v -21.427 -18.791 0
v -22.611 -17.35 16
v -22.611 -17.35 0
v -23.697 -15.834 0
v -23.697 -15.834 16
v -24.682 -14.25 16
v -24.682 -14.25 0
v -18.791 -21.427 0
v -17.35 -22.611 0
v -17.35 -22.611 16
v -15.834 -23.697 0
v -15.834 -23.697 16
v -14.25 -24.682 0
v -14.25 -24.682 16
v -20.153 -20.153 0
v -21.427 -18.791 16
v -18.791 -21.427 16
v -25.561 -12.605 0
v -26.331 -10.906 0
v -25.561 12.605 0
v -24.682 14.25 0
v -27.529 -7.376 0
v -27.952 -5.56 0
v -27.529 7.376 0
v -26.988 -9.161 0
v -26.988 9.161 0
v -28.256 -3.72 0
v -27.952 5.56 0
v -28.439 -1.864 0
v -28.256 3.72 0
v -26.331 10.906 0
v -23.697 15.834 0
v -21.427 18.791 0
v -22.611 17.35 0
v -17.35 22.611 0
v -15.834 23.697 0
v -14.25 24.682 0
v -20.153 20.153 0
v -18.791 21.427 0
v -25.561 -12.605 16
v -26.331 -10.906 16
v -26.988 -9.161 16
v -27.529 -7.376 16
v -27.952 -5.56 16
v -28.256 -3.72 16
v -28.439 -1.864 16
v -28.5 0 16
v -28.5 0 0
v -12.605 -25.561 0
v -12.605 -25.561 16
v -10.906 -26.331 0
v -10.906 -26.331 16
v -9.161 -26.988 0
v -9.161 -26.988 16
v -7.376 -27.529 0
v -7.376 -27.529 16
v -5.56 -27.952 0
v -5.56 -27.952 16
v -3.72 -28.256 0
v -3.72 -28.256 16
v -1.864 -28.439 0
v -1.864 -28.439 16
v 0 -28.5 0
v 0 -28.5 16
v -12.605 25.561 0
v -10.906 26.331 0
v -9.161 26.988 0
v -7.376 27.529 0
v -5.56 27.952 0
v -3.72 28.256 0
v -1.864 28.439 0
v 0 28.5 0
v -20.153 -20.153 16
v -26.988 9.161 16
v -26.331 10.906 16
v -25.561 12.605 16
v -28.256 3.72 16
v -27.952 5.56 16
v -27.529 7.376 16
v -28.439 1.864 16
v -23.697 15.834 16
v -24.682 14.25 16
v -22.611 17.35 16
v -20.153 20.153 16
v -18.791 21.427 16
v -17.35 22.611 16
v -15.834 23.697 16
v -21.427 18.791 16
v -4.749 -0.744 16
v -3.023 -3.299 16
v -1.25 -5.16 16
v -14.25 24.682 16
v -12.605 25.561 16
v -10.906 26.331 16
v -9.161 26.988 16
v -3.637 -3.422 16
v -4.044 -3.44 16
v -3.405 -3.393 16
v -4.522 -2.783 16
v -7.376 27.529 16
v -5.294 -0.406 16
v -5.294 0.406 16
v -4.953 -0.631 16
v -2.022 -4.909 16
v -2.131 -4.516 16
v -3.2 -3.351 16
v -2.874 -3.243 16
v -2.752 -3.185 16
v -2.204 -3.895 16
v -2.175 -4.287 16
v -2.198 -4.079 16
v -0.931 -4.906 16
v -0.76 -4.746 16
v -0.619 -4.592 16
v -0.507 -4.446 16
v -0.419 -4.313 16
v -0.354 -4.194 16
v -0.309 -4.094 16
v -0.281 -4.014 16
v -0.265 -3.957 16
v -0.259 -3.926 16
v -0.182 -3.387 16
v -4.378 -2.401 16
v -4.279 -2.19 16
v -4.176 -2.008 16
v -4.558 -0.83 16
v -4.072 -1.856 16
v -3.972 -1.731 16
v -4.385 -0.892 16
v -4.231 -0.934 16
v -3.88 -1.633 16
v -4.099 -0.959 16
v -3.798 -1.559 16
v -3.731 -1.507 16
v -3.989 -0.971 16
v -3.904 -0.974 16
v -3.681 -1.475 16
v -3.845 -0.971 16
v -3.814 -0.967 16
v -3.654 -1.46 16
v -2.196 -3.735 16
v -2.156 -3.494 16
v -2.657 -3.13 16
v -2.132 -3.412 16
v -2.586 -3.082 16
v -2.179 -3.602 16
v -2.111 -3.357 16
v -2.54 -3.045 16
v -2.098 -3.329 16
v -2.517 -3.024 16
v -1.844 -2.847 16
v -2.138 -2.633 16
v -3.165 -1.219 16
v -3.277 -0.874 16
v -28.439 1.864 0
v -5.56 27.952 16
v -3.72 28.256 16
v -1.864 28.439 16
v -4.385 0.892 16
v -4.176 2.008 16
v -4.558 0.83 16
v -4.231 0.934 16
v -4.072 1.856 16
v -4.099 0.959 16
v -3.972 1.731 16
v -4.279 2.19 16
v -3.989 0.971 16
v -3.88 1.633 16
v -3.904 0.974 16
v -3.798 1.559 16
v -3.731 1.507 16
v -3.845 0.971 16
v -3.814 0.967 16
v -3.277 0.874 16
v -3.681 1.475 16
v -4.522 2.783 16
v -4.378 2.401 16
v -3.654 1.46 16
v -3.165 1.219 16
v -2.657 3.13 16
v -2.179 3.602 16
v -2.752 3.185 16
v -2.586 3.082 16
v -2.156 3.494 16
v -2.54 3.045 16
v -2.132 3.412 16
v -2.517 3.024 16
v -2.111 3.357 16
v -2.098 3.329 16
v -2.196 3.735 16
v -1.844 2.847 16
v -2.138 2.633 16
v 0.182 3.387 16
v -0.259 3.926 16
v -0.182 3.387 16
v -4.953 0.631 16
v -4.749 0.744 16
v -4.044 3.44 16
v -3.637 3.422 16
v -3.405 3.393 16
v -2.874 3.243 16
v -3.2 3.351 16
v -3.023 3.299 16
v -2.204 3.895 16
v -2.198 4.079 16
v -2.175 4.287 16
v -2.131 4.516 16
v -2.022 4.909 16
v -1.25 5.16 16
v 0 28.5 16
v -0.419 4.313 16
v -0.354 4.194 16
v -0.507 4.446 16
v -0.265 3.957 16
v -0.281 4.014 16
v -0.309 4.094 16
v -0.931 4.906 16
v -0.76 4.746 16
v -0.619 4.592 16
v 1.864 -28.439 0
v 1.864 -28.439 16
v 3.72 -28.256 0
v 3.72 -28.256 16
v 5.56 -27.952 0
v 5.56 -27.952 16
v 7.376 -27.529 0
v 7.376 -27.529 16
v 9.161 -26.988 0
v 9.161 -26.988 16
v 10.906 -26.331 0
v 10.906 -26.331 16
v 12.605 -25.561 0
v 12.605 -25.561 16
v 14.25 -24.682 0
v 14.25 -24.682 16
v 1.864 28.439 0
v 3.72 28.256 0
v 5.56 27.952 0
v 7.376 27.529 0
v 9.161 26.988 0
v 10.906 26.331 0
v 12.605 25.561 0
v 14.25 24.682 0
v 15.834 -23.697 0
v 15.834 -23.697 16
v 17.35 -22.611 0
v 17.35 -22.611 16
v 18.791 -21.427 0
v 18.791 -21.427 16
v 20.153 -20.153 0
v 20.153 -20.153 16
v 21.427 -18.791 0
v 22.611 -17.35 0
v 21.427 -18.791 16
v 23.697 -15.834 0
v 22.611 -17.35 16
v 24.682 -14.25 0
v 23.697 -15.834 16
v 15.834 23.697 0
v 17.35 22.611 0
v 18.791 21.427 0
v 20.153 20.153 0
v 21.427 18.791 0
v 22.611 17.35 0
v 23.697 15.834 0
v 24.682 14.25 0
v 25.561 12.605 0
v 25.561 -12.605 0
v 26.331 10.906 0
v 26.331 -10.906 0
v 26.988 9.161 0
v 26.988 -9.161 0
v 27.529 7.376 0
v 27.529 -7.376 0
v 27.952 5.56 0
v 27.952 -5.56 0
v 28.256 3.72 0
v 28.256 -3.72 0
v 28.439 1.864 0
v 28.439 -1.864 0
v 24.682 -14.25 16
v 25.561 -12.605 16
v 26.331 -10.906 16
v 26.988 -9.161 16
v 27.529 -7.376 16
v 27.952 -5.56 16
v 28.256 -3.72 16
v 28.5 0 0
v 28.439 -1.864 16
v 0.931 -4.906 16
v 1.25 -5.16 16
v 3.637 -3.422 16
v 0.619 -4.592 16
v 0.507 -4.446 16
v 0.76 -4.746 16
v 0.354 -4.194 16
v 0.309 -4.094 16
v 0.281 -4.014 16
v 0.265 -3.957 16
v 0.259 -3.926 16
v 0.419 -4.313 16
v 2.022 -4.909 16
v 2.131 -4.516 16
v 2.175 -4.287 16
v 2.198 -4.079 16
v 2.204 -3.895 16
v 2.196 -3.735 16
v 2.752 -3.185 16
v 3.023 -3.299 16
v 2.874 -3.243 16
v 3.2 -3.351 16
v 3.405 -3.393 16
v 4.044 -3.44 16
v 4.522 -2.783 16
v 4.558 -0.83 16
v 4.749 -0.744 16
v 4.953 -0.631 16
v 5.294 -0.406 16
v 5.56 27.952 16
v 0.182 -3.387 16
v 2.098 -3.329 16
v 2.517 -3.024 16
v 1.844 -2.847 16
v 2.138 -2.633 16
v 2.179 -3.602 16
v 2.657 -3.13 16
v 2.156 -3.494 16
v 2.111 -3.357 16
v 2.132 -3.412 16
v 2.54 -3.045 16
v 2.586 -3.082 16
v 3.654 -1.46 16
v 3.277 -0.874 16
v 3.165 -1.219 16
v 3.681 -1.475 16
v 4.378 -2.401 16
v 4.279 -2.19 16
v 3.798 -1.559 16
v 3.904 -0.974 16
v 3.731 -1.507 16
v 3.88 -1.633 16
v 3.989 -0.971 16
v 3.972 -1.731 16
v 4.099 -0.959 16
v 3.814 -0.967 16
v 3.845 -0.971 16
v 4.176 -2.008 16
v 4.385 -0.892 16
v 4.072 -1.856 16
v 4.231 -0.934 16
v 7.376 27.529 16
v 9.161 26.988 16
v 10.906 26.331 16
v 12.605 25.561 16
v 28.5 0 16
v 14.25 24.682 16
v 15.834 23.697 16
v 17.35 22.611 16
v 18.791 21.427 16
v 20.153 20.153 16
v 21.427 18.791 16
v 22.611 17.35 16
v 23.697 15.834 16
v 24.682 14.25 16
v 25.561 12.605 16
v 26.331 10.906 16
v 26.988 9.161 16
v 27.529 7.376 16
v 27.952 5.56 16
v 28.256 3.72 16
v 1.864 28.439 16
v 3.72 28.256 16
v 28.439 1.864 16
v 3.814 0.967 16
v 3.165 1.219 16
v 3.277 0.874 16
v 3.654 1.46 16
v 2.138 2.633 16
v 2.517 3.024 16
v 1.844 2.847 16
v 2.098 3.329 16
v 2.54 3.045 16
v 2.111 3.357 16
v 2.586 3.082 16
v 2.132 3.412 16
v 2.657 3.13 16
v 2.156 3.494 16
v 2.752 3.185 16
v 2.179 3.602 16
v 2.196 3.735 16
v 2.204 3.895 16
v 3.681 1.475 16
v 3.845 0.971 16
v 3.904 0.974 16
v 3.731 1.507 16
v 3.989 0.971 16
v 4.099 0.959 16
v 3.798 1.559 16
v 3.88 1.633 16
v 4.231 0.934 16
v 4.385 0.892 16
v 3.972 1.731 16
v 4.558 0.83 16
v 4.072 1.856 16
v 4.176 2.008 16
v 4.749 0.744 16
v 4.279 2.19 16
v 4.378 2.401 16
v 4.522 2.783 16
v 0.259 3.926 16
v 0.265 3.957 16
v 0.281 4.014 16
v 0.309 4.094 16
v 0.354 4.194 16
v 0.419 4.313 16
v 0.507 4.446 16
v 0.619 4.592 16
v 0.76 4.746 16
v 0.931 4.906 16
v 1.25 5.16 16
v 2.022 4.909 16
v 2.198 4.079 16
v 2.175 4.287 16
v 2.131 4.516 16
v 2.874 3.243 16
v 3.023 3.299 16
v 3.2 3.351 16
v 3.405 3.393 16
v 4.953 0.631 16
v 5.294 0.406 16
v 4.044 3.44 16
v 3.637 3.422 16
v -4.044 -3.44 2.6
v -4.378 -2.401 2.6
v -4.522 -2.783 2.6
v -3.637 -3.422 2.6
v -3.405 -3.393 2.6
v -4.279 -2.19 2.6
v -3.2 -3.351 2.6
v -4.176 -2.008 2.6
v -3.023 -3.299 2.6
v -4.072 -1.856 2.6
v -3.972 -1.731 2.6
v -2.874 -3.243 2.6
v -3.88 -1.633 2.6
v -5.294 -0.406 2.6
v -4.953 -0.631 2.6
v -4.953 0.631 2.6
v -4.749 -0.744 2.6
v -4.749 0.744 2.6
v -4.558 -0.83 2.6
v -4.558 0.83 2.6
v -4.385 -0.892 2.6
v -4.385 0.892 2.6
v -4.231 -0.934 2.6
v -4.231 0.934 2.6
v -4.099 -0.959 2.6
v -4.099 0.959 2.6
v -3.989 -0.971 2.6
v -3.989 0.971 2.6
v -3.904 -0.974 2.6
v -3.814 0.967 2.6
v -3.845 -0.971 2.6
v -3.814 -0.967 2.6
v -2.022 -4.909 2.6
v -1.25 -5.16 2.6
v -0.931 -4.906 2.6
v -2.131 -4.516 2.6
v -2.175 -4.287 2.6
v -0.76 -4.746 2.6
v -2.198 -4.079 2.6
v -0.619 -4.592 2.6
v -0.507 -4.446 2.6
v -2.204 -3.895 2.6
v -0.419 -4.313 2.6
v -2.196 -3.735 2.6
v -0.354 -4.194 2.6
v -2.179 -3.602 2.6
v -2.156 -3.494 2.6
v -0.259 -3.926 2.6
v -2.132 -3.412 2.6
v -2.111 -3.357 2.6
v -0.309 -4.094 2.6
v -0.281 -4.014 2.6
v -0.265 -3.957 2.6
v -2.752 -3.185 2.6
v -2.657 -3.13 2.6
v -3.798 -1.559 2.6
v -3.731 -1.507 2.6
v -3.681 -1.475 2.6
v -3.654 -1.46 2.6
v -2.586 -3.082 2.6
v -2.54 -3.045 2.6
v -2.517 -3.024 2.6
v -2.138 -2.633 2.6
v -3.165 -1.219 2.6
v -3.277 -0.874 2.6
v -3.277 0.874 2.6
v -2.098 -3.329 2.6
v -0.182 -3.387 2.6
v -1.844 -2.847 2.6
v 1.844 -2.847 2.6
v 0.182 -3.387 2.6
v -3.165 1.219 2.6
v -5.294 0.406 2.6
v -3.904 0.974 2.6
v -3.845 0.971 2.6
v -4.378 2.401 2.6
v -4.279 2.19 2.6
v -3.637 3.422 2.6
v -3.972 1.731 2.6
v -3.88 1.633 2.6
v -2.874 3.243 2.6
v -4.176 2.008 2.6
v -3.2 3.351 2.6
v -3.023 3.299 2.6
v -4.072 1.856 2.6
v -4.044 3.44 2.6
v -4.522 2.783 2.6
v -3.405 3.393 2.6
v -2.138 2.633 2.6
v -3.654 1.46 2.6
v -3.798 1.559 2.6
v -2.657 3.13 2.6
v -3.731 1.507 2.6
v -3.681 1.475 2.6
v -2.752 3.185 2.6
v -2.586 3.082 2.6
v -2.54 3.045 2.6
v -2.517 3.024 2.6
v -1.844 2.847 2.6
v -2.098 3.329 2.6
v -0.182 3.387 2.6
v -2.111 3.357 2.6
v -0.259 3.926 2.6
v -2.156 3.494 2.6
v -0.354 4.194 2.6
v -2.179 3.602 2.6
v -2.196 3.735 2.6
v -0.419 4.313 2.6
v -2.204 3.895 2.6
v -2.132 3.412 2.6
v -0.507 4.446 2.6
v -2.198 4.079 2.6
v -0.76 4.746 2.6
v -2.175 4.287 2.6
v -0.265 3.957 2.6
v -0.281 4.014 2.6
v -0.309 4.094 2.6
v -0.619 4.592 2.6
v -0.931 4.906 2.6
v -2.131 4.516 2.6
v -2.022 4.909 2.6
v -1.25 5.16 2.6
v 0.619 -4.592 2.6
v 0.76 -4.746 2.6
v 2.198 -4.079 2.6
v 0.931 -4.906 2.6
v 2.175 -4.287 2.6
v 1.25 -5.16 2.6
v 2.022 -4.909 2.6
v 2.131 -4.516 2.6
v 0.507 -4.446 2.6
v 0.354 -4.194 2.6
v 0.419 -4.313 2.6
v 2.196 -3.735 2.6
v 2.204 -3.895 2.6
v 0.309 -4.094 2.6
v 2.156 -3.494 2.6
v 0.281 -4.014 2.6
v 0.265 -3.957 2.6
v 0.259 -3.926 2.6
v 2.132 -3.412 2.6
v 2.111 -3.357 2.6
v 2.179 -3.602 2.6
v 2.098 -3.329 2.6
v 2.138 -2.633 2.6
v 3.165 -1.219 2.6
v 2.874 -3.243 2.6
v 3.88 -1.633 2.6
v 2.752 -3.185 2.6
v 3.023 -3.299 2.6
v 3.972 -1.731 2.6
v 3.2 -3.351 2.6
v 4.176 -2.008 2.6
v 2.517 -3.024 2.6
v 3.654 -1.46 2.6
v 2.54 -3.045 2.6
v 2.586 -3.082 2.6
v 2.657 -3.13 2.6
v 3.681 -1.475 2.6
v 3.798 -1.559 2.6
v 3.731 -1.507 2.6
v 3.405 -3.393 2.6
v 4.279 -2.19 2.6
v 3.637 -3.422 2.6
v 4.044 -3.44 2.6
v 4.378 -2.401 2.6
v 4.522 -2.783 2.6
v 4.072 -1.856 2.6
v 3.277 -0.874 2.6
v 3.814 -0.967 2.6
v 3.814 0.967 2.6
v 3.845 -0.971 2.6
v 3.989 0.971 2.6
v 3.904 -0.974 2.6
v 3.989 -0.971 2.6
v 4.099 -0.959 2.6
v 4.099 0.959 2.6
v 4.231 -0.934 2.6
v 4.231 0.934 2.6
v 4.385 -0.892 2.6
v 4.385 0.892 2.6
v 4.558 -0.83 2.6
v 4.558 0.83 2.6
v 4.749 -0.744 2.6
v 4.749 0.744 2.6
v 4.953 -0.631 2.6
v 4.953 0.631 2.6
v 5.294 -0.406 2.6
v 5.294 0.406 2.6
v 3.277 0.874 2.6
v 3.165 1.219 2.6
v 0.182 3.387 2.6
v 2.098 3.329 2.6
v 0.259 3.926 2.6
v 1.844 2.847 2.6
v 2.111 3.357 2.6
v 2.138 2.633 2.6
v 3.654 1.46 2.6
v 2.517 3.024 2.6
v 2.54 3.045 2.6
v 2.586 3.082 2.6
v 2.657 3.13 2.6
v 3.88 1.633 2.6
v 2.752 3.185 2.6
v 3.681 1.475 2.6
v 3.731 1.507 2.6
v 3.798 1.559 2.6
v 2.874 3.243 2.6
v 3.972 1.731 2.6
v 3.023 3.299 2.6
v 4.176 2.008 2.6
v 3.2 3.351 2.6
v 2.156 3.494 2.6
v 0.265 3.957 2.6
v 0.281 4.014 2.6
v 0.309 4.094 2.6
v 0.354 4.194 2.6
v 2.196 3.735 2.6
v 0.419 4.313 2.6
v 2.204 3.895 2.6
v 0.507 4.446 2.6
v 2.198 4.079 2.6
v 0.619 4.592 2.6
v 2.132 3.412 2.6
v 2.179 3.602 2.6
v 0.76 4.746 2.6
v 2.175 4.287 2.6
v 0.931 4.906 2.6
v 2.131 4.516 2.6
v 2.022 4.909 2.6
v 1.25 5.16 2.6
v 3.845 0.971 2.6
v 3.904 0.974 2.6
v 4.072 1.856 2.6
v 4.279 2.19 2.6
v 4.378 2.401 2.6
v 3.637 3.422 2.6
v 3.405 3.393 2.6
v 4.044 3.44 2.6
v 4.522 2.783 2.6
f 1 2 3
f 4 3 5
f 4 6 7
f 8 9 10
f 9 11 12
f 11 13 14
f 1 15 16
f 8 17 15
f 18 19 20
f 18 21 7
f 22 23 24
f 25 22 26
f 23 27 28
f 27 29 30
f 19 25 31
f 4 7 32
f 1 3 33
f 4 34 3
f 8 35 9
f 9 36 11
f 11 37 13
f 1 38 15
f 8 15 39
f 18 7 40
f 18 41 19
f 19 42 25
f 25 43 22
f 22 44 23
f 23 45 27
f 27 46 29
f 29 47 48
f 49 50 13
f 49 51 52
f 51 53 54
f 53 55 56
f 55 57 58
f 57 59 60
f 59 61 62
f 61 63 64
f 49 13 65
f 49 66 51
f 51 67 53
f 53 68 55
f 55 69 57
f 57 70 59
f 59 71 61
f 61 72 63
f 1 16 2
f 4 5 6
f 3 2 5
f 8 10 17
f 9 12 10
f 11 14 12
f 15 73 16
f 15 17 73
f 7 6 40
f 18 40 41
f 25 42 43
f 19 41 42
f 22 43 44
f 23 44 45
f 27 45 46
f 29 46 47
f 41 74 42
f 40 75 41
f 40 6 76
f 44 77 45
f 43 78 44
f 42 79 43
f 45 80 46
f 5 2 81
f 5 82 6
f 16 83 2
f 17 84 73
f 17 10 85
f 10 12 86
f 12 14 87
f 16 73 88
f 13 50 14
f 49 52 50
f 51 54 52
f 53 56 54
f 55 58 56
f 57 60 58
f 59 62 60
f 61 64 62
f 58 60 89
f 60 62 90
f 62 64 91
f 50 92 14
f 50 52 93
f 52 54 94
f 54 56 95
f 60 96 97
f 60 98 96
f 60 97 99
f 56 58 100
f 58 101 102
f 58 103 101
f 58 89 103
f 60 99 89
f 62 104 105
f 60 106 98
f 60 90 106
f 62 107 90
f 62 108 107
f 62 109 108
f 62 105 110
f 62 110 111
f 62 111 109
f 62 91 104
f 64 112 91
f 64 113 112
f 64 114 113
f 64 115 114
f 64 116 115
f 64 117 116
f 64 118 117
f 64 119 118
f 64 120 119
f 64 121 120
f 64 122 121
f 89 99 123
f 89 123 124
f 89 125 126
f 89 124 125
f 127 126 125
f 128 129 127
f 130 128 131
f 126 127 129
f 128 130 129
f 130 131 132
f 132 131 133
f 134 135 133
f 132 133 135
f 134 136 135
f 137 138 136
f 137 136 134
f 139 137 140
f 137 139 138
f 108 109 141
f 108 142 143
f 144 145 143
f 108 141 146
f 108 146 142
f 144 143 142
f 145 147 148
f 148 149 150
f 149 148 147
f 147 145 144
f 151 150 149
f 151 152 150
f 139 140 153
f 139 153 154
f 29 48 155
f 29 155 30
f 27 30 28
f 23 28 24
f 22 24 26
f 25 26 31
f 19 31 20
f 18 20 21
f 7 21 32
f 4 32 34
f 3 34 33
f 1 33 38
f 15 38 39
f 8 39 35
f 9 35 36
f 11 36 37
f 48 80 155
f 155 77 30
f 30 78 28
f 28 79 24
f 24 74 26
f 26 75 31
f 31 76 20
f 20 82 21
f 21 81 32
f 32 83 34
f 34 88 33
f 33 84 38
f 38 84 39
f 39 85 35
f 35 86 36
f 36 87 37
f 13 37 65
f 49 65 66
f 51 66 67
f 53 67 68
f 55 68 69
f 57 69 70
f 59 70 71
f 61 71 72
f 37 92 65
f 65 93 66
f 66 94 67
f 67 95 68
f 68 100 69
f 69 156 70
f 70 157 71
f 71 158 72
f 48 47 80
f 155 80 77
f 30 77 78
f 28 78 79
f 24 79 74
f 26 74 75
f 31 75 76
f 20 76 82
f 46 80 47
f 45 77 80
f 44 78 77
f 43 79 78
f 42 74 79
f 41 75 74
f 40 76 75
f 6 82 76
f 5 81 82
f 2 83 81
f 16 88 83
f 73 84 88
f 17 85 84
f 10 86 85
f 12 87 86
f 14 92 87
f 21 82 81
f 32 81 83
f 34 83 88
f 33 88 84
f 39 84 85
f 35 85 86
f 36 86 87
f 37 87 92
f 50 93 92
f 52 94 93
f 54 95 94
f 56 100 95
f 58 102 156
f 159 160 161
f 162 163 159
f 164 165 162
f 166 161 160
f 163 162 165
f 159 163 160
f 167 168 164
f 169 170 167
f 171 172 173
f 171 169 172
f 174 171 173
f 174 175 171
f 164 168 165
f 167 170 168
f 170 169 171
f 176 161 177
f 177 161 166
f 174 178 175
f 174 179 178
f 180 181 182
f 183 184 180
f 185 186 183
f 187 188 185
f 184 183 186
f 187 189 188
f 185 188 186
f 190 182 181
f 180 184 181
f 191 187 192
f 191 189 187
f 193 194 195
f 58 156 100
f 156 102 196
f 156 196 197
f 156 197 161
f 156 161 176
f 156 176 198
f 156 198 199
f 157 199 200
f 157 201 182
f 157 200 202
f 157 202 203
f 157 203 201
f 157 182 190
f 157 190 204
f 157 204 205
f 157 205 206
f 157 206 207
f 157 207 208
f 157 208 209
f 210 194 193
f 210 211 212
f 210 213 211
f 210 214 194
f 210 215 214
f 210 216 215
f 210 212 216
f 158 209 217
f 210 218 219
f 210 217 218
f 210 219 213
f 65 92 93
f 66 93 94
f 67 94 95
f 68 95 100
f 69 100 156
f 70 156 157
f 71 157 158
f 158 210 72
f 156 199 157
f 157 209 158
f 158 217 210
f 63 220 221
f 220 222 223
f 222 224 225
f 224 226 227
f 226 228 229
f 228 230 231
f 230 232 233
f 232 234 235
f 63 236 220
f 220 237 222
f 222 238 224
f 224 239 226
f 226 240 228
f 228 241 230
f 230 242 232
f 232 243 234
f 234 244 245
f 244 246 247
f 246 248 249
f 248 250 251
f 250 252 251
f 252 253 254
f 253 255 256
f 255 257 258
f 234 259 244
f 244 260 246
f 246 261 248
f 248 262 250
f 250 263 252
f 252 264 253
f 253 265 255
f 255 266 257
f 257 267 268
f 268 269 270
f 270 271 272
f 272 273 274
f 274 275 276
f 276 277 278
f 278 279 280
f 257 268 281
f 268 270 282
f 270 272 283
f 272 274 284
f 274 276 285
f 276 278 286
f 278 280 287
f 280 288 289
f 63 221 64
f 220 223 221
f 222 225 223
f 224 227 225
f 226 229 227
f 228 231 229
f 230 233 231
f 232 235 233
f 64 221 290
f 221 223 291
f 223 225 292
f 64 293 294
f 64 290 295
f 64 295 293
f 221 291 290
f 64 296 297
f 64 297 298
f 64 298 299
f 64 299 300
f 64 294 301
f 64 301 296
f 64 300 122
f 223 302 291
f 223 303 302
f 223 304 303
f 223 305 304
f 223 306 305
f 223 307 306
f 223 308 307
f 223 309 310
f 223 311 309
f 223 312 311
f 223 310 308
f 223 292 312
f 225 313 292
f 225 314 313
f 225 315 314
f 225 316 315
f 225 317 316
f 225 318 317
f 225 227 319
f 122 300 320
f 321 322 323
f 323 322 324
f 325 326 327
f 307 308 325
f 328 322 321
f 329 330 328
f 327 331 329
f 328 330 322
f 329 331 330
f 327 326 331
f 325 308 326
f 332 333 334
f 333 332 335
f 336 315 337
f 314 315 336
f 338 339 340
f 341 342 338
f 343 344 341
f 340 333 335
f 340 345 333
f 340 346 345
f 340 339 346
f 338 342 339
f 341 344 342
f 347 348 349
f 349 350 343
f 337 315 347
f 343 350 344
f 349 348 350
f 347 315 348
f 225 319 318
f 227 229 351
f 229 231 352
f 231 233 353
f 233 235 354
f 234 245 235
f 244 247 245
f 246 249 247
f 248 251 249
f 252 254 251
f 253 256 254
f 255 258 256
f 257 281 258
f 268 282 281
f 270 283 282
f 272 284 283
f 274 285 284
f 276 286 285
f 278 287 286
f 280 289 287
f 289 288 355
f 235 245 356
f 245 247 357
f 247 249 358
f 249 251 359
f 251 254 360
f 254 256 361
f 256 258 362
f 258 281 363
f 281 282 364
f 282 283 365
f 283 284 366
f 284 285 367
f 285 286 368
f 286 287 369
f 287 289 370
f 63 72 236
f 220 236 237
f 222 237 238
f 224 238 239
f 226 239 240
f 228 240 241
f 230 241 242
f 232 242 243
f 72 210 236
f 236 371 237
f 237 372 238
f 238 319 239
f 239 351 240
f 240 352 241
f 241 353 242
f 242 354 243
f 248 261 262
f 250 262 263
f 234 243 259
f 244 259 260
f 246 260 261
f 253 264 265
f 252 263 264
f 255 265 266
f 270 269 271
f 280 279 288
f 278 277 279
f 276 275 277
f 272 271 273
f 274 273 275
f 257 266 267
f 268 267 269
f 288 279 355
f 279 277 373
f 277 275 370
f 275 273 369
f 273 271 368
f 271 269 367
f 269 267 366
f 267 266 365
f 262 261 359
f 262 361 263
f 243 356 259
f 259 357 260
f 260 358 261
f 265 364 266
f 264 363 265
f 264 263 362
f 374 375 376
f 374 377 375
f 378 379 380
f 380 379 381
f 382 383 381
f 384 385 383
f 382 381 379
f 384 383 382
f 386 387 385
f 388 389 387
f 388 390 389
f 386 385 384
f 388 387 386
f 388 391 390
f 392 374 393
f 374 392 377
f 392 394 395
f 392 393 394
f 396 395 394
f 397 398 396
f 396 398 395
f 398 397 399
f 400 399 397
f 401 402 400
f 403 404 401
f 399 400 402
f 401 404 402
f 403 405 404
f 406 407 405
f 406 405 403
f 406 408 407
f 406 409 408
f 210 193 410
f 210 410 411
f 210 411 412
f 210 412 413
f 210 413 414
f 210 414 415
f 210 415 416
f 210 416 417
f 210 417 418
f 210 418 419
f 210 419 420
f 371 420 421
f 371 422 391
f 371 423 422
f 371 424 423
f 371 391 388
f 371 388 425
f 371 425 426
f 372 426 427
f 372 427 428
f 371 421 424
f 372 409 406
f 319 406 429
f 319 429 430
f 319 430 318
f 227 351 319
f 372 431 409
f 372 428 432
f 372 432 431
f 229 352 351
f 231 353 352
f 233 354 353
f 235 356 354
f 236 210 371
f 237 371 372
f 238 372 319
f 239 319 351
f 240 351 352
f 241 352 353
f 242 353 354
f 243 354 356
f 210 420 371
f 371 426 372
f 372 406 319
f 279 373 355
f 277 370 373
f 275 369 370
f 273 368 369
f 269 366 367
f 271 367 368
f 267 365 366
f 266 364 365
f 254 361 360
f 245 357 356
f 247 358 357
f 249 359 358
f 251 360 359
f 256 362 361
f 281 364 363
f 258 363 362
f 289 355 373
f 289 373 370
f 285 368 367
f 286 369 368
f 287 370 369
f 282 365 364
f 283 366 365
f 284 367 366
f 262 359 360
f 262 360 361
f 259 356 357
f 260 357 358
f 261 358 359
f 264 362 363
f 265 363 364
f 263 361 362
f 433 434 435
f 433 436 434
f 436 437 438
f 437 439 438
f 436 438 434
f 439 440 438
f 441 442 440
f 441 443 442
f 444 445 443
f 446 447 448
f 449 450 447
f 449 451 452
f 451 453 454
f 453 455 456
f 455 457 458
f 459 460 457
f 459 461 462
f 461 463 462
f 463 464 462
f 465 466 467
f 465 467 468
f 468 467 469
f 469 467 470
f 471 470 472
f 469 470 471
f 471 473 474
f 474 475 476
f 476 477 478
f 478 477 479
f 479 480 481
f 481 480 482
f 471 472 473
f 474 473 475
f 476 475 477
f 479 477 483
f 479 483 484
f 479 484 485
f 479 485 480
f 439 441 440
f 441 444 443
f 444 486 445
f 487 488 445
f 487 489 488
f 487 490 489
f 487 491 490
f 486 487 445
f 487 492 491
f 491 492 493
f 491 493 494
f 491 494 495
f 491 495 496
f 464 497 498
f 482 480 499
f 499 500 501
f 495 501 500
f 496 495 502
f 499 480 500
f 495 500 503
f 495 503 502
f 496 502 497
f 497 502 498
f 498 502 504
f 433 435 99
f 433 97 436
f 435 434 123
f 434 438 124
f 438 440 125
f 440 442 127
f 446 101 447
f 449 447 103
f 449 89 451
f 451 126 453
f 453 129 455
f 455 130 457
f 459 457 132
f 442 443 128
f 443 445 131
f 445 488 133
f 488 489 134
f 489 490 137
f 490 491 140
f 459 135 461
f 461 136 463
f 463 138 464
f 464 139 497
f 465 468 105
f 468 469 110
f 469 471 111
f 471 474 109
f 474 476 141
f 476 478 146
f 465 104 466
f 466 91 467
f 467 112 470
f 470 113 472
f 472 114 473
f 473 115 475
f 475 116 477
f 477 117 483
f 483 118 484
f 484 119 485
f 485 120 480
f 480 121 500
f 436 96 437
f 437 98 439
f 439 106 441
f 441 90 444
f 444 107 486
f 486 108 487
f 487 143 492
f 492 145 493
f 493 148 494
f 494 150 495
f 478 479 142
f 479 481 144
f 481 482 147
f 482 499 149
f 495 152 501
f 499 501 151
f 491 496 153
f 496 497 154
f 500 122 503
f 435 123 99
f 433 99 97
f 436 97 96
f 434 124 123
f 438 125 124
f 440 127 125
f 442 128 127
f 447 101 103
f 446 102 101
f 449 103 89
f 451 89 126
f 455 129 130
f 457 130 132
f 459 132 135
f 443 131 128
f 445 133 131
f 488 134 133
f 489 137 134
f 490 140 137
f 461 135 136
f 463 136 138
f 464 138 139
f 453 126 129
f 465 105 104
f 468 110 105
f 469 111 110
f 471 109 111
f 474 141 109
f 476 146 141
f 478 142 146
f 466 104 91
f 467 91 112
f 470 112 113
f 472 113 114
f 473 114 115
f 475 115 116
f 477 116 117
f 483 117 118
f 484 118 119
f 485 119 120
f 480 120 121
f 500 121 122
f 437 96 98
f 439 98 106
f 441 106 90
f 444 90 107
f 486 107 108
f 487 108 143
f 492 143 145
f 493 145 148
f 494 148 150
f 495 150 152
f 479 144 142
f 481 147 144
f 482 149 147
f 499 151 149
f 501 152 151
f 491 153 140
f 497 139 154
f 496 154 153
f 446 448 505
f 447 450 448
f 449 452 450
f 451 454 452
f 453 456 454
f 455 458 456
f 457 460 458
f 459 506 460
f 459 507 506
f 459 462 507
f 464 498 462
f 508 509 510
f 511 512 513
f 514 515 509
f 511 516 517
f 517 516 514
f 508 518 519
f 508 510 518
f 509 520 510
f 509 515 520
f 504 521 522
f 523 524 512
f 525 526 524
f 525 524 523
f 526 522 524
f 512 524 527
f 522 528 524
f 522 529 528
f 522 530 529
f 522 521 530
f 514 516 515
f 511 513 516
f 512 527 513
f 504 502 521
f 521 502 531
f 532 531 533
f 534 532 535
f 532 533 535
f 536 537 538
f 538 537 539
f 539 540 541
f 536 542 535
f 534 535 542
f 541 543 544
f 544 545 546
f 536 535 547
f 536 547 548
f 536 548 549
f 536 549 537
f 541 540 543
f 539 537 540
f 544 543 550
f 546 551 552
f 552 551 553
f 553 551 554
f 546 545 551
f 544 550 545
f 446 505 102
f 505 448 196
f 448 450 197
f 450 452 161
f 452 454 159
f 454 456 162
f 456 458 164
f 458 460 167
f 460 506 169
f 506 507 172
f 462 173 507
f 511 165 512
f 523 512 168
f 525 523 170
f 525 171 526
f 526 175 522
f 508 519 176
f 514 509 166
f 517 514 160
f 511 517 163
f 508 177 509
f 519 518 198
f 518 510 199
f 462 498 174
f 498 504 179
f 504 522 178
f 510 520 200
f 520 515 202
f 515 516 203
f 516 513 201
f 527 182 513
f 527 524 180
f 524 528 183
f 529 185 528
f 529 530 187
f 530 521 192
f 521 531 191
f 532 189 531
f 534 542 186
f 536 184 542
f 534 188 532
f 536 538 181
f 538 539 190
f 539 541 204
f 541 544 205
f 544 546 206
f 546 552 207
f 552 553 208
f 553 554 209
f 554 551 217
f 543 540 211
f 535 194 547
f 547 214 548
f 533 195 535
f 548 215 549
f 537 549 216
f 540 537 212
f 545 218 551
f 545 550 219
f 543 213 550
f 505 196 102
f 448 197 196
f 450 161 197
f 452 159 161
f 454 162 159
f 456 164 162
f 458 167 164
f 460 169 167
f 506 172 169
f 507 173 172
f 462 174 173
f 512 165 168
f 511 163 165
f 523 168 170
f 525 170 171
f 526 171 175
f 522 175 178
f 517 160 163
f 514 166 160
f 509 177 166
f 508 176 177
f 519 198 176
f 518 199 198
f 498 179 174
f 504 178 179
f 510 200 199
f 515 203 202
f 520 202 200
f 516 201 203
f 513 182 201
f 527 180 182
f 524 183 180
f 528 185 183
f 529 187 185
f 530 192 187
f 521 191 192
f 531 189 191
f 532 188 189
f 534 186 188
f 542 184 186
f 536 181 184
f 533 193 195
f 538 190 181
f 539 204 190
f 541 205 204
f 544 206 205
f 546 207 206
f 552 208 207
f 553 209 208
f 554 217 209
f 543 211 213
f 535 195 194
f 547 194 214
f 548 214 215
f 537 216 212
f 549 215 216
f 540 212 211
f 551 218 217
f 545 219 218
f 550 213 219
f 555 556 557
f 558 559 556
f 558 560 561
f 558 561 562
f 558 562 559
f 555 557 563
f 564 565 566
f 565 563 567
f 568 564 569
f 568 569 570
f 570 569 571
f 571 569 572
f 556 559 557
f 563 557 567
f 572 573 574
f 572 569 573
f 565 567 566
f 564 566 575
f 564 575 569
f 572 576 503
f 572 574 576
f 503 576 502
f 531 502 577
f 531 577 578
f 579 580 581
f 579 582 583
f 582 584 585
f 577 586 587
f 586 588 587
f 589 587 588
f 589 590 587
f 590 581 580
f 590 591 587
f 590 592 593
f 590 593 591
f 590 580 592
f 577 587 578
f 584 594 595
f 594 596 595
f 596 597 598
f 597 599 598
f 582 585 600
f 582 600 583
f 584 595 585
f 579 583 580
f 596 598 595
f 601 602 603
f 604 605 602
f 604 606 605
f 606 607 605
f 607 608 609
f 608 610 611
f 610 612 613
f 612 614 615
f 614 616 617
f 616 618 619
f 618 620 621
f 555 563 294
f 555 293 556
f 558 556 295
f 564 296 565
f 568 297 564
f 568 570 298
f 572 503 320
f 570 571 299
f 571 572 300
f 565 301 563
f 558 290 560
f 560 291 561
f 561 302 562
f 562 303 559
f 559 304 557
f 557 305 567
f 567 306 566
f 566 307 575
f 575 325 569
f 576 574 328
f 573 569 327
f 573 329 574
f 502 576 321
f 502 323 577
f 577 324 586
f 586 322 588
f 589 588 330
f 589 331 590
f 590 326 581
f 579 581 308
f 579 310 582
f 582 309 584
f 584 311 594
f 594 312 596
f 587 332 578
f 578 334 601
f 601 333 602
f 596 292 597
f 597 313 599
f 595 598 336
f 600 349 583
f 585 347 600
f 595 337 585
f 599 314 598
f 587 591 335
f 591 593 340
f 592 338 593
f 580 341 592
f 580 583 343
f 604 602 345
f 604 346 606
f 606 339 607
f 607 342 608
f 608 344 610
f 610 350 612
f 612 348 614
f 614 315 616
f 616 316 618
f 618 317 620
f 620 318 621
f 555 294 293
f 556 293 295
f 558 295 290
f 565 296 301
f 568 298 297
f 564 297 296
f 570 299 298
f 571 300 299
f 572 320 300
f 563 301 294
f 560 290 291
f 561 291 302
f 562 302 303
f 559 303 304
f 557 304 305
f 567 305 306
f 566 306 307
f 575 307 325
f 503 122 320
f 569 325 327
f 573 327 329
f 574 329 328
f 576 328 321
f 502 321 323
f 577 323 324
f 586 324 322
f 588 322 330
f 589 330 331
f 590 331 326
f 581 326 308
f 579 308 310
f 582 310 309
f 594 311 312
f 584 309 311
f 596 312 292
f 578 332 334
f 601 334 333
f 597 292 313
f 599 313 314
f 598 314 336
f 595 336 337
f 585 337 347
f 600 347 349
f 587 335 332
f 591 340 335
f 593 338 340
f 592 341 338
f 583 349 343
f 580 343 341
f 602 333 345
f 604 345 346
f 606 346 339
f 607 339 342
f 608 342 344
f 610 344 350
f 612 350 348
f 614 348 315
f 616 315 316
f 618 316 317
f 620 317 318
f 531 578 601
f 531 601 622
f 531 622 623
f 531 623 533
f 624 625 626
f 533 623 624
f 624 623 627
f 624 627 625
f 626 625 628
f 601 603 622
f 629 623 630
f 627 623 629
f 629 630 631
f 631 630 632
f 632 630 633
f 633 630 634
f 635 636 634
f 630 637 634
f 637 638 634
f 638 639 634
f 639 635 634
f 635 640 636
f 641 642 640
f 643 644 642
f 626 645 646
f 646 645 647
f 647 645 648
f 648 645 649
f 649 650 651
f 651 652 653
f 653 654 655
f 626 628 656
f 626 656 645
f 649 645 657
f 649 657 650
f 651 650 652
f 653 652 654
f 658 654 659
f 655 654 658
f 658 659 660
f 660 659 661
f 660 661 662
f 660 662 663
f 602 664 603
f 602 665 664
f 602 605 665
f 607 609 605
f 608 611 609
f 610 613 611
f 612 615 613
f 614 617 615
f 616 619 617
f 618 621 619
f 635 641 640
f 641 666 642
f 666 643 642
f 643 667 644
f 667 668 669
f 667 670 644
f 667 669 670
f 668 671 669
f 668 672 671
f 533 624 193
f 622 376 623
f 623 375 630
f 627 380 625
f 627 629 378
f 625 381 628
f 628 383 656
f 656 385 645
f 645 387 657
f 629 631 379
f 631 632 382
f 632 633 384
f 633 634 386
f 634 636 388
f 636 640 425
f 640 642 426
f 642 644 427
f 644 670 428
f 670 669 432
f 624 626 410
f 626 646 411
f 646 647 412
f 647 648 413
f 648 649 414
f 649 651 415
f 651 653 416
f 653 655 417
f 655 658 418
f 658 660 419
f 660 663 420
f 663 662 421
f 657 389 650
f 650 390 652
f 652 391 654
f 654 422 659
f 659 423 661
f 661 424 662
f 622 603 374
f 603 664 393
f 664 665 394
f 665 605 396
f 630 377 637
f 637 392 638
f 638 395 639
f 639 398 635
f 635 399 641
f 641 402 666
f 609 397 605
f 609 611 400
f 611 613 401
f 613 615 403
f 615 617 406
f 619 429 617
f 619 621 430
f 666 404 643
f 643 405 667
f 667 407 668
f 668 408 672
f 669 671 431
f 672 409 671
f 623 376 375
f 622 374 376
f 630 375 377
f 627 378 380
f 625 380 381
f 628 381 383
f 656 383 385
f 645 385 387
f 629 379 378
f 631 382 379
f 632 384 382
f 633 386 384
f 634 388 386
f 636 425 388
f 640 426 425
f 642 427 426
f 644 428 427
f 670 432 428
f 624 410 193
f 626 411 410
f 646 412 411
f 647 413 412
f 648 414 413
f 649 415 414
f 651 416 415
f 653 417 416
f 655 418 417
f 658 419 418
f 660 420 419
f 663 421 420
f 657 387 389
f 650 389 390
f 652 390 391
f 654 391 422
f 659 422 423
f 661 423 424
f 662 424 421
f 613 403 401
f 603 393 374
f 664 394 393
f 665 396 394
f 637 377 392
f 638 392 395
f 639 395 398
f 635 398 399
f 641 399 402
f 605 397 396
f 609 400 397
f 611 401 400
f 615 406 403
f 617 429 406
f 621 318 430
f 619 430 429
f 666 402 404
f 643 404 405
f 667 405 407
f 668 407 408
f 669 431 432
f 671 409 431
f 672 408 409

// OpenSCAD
// 57 mm throwing wheel that presses straight onto the RS550's fixed 10-tooth
// pinion. Units: mm. Needs OpenSCAD's bundled MCAD library.
// Print flat, closed face down. Wrap one even band of tape around the tread
// after installing: bare PLA throws only a short distance.

use <MCAD/involute_gears.scad>;

$fn = 96;

ball_diameter = 40;
shaft_above_base_top = 66.5;
wheel_diameter = 57;
wheel_width = 16;
nominal_tape_width = 12;

// Internal-gear socket fitted to the motor pinion (tested fit; do not change).
pinion_teeth = 10;
pinion_outside_d = 10.0;
pinion_face_width = 13.0;
pinion_module = pinion_outside_d / (pinion_teeth + 2);
pressure_angle = 20;
tooth_clearance = pinion_module * 0.25;
cavity_profile_clearance = 0.30;
socket_base_thickness = 2.6;
socket_depth = pinion_face_width + 0.4;

wheel_lower_rim_height = shaft_above_base_top - wheel_diameter / 2;
ball_top_height = ball_diameter;

function pitch_radius(teeth) = pinion_module * teeth / 2;
function outer_radius(teeth) = pitch_radius(teeth) + pinion_module;
function root_radius(teeth) = pitch_radius(teeth) - pinion_module - tooth_clearance;
function base_radius(teeth) = pitch_radius(teeth) * cos(pressure_angle);
function half_tooth_angle(teeth) = 360 / teeth / 4;

assert(ball_diameter == 40, "Designed for a standard 40 mm ball.");
assert(wheel_width == socket_base_thickness + socket_depth,
       "Wheel must keep a closed socket base behind the pinion.");
assert(nominal_tape_width < wheel_width, "Tape must fit smooth wheel width.");
assert(wheel_lower_rim_height == 38 && ball_top_height - wheel_lower_rim_height == 2,
       "57 mm wheel gives 38 mm lower rim and 2 mm nominal ball pinch.");
assert(wheel_diameter / 2 > outer_radius(pinion_teeth) + cavity_profile_clearance + 10,
       "Wheel needs substantial solid rim beyond passed pinion socket.");

module cavity_profile() {
    offset(delta = cavity_profile_clearance)
        gear_shape(number_of_teeth = pinion_teeth,
                   pitch_radius = pitch_radius(pinion_teeth),
                   root_radius = root_radius(pinion_teeth),
                   base_radius = base_radius(pinion_teeth),
                   outer_radius = outer_radius(pinion_teeth),
                   half_thick_angle = half_tooth_angle(pinion_teeth),
                   involute_facets = 10);
}

module smooth_taped_wheel() {
    difference() {
        cylinder(d = wheel_diameter, h = wheel_width);
        // Pinion enters from top; closed bottom transfers torque.
        translate([0, 0, socket_base_thickness])
            linear_extrude(height = socket_depth + 0.02, convexity = 10)
                cavity_profile();
    }
}

smooth_taped_wheel();
